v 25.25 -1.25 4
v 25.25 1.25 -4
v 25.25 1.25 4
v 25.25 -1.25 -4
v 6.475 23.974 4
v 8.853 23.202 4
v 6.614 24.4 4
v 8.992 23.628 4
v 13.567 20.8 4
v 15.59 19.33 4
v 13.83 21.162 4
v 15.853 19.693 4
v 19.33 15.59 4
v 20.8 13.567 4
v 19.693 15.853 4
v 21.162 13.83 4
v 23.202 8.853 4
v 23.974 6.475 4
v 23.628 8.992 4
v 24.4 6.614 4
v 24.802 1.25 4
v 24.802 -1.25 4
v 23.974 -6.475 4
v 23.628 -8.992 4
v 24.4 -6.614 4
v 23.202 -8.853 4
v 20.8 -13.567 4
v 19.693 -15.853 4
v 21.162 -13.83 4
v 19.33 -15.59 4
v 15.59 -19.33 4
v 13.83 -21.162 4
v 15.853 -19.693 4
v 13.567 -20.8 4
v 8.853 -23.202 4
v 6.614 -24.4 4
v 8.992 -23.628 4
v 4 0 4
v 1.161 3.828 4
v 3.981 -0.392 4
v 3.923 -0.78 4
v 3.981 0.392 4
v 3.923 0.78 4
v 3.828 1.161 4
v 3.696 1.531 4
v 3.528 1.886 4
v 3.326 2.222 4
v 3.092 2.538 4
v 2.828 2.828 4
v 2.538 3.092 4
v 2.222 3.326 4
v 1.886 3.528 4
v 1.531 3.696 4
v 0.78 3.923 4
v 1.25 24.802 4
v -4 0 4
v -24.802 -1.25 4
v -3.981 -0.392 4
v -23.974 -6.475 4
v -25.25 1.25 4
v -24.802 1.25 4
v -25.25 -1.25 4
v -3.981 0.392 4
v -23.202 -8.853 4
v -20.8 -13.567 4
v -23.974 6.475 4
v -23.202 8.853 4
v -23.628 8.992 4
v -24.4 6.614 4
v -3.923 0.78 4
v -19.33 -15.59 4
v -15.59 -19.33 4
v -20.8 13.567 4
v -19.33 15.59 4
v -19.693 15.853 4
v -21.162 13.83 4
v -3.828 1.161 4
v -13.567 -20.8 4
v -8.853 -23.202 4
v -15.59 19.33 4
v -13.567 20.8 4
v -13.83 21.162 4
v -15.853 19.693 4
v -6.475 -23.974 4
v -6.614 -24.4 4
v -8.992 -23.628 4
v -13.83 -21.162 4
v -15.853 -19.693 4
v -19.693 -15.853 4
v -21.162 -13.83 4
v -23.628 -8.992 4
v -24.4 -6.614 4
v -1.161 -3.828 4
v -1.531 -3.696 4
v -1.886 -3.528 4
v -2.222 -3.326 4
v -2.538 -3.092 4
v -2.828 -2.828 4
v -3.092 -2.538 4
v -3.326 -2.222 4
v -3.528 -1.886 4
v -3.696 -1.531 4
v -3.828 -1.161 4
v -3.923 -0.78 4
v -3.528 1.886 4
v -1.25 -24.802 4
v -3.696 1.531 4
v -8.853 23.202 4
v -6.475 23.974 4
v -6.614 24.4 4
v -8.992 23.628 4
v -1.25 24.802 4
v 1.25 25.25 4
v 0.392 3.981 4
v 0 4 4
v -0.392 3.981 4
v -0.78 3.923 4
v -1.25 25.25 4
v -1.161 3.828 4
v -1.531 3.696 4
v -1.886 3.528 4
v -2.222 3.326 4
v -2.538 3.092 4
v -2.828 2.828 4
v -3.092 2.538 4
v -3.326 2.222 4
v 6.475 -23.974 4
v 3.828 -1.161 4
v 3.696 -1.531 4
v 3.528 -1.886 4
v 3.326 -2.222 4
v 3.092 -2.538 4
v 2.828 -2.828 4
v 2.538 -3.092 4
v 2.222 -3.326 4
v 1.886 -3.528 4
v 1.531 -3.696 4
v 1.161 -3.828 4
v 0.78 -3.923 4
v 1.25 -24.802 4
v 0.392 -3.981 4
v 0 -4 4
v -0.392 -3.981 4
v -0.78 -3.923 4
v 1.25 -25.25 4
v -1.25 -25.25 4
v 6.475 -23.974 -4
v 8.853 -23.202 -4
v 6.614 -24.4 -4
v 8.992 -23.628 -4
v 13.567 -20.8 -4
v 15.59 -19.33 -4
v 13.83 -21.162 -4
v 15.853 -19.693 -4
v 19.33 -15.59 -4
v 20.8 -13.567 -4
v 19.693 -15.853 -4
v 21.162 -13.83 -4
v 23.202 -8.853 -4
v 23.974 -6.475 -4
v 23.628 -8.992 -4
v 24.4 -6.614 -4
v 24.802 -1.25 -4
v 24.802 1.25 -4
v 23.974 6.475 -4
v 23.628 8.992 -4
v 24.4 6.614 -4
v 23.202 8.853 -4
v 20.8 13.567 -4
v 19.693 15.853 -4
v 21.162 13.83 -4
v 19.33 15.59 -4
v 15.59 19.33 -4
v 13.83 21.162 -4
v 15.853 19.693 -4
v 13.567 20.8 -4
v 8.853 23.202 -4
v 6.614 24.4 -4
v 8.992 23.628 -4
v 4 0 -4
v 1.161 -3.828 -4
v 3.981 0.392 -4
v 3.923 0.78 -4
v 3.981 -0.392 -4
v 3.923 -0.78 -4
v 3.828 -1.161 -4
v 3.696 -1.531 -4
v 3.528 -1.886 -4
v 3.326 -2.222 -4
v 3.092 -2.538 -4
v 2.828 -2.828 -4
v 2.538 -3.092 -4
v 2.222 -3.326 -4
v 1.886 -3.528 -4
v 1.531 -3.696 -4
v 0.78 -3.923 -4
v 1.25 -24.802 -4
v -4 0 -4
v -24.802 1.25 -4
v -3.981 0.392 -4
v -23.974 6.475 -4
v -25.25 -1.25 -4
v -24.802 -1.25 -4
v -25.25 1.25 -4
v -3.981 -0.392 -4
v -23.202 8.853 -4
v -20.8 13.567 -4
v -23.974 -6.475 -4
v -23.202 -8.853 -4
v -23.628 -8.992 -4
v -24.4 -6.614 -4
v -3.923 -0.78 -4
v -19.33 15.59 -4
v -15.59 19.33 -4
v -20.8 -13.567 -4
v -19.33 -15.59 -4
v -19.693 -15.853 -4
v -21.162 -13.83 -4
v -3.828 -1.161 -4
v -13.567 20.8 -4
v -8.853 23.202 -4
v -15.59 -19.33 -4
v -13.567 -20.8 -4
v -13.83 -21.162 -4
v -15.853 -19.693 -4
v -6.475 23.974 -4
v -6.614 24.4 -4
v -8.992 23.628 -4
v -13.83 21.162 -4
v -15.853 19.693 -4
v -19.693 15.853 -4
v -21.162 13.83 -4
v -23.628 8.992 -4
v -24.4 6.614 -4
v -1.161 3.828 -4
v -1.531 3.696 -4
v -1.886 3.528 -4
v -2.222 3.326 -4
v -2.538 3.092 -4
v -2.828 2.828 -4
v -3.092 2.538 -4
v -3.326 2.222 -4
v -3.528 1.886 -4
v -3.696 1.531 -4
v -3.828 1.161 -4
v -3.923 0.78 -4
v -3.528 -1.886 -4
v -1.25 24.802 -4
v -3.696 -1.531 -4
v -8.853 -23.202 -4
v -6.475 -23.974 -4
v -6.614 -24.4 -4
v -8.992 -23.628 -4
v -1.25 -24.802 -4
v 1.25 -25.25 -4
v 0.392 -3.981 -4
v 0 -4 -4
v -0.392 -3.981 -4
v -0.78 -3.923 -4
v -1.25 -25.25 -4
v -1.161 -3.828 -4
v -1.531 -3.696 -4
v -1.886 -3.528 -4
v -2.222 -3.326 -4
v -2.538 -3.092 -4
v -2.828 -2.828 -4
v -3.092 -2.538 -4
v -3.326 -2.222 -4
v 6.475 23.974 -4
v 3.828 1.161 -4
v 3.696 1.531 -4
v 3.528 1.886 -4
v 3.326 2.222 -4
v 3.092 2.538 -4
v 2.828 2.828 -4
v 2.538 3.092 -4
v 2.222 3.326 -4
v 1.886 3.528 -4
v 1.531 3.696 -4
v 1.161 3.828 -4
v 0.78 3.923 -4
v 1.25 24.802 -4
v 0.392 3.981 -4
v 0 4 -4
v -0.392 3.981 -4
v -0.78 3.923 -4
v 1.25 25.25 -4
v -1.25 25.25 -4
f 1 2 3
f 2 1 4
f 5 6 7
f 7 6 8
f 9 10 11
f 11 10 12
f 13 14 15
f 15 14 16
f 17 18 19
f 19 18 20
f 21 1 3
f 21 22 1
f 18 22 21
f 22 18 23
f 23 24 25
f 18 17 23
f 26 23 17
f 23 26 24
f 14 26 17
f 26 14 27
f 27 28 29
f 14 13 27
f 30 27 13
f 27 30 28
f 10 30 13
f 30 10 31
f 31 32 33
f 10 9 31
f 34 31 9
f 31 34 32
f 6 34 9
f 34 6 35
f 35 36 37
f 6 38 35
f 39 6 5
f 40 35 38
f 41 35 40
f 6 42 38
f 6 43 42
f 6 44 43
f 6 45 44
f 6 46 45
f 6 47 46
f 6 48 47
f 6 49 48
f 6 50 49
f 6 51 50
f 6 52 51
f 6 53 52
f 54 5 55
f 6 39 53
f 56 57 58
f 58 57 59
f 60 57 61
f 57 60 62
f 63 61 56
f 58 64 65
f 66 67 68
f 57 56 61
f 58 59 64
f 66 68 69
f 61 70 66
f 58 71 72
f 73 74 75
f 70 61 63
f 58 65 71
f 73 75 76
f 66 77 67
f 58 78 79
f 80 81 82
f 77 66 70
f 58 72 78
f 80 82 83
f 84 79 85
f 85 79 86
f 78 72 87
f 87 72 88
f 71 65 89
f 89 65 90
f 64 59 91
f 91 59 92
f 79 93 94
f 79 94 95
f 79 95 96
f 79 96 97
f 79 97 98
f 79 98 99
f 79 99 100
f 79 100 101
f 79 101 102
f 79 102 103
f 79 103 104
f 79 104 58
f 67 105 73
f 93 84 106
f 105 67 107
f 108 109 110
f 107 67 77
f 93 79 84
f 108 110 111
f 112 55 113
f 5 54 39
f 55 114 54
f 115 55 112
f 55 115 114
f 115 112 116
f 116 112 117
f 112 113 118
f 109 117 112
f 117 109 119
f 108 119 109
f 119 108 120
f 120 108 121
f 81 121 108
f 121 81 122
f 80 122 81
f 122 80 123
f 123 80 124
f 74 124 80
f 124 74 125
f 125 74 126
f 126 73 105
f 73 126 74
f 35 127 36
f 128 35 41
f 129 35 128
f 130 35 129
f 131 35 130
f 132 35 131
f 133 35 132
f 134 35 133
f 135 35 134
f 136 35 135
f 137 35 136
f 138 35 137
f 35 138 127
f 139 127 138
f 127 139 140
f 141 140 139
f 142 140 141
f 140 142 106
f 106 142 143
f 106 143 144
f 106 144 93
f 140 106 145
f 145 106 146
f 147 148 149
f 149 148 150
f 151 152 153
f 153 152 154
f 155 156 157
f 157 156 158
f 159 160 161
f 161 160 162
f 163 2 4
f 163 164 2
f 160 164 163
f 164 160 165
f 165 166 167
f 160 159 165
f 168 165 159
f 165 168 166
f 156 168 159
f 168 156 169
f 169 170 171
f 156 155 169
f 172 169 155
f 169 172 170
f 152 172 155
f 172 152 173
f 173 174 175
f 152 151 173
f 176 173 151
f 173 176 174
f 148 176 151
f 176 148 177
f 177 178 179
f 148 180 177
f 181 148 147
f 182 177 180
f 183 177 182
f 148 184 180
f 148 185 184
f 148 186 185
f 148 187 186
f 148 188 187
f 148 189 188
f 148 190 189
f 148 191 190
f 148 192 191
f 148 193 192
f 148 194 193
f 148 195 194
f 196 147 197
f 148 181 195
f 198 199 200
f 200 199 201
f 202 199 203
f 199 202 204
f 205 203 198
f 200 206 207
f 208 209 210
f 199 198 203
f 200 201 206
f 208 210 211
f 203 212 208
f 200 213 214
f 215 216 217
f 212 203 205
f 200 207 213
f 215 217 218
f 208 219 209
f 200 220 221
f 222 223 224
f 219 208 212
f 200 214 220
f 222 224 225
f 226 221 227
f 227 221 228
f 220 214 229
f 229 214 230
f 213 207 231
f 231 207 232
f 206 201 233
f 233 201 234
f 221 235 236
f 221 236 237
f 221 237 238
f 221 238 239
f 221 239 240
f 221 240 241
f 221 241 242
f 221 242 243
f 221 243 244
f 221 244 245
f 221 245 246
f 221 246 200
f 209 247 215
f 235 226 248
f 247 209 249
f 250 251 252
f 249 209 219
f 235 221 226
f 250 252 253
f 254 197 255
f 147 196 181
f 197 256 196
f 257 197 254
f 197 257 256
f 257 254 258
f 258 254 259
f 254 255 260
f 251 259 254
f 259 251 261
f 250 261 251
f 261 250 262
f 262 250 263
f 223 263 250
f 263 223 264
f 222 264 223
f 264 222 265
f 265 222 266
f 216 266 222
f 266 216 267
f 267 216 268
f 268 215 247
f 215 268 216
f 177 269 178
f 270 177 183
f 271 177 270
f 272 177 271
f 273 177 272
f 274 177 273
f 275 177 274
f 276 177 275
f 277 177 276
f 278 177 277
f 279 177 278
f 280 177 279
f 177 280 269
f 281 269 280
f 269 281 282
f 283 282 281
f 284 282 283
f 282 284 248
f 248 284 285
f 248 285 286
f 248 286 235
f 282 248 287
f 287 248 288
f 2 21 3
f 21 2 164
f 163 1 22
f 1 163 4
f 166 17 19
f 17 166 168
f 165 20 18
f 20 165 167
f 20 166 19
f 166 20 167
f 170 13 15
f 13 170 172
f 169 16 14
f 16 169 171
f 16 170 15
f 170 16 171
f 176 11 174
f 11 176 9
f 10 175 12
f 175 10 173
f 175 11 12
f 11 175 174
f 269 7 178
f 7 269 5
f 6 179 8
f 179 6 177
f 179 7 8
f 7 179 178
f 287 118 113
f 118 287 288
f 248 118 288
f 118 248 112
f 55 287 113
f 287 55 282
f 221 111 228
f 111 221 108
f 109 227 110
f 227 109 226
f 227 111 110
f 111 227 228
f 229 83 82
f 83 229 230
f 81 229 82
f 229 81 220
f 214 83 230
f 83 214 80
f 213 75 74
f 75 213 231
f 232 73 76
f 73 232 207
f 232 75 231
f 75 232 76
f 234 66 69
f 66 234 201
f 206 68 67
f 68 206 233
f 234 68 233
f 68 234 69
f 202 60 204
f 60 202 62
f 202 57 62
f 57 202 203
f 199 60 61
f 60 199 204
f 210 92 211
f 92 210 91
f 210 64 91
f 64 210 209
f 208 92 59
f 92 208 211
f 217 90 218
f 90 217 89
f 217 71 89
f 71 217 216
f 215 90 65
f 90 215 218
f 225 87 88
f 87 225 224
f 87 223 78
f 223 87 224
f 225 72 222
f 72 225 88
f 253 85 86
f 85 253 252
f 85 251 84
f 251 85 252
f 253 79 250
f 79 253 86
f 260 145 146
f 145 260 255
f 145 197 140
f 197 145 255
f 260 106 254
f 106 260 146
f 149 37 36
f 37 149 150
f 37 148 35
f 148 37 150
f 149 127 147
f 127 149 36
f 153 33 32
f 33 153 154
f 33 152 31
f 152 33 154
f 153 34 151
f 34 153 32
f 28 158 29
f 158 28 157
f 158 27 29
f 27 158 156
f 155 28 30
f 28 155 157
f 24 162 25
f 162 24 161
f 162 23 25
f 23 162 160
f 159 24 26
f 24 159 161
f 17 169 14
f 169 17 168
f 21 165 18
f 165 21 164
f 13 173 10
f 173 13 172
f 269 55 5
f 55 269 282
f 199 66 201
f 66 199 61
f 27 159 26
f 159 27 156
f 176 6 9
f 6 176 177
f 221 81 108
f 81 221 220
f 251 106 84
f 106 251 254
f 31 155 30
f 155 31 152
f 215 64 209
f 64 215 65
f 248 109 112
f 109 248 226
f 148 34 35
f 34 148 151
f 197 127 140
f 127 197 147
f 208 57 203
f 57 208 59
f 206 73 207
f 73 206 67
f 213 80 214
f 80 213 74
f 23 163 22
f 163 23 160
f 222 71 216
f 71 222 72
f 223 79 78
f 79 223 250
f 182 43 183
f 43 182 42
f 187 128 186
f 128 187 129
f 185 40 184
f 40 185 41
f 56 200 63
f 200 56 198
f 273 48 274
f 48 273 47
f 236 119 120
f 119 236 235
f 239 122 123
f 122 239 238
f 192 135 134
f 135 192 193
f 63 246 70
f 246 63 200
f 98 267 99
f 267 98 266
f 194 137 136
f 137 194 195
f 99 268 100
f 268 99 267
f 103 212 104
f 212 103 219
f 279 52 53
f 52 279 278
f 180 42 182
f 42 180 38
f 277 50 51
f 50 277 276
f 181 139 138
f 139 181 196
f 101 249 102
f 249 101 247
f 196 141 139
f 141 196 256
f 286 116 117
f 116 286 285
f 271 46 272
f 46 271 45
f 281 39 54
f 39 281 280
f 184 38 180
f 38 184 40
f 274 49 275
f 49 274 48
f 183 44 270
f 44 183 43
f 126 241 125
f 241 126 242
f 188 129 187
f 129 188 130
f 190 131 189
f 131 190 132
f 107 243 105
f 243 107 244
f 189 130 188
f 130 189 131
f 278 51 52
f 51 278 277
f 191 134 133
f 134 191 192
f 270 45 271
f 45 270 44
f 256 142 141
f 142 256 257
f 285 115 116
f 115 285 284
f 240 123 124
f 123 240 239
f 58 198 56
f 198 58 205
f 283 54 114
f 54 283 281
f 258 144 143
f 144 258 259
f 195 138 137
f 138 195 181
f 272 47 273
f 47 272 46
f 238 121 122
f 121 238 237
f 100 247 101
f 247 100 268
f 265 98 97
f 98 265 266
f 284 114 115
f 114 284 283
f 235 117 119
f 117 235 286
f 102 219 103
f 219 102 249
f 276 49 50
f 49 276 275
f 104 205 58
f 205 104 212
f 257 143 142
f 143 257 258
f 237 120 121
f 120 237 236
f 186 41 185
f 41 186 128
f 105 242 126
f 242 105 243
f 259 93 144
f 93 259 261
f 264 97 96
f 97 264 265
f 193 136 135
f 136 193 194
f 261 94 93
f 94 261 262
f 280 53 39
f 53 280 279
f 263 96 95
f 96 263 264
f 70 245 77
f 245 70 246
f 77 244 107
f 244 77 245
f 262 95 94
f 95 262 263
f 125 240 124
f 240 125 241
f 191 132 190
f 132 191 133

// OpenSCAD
// Generated by AgentSCAD
// Part Family: spur_gear
// Generated at: 2026-04-23T20:56:54.879Z

teeth = 20;
outer_diameter = 50;
bore_diameter = 8;
thickness = 8;
pressure_angle = 20;

module spur_gear(teeth, outer_diameter, bore_diameter, thickness, pressure_angle) {
  tooth_module = outer_diameter / teeth;
  pitch_diameter = outer_diameter - 2 * tooth_module;
  tooth_depth = tooth_module * 2.2;

  difference() {
    union() {
      cylinder(h=thickness, d=outer_diameter, $fn=teeth, center=true);
      for (i = [0:teeth-1]) {
        rotate([0, 0, i * 360 / teeth])
          translate([pitch_diameter/2, 0, 0])
            cube([tooth_depth, tooth_module, thickness], center=true);
      }
    }
    cylinder(h=thickness+2, d=bore_diameter, $fn=64, center=true);
  }
}

spur_gear(teeth, outer_diameter, bore_diameter, thickness, pressure_angle);
